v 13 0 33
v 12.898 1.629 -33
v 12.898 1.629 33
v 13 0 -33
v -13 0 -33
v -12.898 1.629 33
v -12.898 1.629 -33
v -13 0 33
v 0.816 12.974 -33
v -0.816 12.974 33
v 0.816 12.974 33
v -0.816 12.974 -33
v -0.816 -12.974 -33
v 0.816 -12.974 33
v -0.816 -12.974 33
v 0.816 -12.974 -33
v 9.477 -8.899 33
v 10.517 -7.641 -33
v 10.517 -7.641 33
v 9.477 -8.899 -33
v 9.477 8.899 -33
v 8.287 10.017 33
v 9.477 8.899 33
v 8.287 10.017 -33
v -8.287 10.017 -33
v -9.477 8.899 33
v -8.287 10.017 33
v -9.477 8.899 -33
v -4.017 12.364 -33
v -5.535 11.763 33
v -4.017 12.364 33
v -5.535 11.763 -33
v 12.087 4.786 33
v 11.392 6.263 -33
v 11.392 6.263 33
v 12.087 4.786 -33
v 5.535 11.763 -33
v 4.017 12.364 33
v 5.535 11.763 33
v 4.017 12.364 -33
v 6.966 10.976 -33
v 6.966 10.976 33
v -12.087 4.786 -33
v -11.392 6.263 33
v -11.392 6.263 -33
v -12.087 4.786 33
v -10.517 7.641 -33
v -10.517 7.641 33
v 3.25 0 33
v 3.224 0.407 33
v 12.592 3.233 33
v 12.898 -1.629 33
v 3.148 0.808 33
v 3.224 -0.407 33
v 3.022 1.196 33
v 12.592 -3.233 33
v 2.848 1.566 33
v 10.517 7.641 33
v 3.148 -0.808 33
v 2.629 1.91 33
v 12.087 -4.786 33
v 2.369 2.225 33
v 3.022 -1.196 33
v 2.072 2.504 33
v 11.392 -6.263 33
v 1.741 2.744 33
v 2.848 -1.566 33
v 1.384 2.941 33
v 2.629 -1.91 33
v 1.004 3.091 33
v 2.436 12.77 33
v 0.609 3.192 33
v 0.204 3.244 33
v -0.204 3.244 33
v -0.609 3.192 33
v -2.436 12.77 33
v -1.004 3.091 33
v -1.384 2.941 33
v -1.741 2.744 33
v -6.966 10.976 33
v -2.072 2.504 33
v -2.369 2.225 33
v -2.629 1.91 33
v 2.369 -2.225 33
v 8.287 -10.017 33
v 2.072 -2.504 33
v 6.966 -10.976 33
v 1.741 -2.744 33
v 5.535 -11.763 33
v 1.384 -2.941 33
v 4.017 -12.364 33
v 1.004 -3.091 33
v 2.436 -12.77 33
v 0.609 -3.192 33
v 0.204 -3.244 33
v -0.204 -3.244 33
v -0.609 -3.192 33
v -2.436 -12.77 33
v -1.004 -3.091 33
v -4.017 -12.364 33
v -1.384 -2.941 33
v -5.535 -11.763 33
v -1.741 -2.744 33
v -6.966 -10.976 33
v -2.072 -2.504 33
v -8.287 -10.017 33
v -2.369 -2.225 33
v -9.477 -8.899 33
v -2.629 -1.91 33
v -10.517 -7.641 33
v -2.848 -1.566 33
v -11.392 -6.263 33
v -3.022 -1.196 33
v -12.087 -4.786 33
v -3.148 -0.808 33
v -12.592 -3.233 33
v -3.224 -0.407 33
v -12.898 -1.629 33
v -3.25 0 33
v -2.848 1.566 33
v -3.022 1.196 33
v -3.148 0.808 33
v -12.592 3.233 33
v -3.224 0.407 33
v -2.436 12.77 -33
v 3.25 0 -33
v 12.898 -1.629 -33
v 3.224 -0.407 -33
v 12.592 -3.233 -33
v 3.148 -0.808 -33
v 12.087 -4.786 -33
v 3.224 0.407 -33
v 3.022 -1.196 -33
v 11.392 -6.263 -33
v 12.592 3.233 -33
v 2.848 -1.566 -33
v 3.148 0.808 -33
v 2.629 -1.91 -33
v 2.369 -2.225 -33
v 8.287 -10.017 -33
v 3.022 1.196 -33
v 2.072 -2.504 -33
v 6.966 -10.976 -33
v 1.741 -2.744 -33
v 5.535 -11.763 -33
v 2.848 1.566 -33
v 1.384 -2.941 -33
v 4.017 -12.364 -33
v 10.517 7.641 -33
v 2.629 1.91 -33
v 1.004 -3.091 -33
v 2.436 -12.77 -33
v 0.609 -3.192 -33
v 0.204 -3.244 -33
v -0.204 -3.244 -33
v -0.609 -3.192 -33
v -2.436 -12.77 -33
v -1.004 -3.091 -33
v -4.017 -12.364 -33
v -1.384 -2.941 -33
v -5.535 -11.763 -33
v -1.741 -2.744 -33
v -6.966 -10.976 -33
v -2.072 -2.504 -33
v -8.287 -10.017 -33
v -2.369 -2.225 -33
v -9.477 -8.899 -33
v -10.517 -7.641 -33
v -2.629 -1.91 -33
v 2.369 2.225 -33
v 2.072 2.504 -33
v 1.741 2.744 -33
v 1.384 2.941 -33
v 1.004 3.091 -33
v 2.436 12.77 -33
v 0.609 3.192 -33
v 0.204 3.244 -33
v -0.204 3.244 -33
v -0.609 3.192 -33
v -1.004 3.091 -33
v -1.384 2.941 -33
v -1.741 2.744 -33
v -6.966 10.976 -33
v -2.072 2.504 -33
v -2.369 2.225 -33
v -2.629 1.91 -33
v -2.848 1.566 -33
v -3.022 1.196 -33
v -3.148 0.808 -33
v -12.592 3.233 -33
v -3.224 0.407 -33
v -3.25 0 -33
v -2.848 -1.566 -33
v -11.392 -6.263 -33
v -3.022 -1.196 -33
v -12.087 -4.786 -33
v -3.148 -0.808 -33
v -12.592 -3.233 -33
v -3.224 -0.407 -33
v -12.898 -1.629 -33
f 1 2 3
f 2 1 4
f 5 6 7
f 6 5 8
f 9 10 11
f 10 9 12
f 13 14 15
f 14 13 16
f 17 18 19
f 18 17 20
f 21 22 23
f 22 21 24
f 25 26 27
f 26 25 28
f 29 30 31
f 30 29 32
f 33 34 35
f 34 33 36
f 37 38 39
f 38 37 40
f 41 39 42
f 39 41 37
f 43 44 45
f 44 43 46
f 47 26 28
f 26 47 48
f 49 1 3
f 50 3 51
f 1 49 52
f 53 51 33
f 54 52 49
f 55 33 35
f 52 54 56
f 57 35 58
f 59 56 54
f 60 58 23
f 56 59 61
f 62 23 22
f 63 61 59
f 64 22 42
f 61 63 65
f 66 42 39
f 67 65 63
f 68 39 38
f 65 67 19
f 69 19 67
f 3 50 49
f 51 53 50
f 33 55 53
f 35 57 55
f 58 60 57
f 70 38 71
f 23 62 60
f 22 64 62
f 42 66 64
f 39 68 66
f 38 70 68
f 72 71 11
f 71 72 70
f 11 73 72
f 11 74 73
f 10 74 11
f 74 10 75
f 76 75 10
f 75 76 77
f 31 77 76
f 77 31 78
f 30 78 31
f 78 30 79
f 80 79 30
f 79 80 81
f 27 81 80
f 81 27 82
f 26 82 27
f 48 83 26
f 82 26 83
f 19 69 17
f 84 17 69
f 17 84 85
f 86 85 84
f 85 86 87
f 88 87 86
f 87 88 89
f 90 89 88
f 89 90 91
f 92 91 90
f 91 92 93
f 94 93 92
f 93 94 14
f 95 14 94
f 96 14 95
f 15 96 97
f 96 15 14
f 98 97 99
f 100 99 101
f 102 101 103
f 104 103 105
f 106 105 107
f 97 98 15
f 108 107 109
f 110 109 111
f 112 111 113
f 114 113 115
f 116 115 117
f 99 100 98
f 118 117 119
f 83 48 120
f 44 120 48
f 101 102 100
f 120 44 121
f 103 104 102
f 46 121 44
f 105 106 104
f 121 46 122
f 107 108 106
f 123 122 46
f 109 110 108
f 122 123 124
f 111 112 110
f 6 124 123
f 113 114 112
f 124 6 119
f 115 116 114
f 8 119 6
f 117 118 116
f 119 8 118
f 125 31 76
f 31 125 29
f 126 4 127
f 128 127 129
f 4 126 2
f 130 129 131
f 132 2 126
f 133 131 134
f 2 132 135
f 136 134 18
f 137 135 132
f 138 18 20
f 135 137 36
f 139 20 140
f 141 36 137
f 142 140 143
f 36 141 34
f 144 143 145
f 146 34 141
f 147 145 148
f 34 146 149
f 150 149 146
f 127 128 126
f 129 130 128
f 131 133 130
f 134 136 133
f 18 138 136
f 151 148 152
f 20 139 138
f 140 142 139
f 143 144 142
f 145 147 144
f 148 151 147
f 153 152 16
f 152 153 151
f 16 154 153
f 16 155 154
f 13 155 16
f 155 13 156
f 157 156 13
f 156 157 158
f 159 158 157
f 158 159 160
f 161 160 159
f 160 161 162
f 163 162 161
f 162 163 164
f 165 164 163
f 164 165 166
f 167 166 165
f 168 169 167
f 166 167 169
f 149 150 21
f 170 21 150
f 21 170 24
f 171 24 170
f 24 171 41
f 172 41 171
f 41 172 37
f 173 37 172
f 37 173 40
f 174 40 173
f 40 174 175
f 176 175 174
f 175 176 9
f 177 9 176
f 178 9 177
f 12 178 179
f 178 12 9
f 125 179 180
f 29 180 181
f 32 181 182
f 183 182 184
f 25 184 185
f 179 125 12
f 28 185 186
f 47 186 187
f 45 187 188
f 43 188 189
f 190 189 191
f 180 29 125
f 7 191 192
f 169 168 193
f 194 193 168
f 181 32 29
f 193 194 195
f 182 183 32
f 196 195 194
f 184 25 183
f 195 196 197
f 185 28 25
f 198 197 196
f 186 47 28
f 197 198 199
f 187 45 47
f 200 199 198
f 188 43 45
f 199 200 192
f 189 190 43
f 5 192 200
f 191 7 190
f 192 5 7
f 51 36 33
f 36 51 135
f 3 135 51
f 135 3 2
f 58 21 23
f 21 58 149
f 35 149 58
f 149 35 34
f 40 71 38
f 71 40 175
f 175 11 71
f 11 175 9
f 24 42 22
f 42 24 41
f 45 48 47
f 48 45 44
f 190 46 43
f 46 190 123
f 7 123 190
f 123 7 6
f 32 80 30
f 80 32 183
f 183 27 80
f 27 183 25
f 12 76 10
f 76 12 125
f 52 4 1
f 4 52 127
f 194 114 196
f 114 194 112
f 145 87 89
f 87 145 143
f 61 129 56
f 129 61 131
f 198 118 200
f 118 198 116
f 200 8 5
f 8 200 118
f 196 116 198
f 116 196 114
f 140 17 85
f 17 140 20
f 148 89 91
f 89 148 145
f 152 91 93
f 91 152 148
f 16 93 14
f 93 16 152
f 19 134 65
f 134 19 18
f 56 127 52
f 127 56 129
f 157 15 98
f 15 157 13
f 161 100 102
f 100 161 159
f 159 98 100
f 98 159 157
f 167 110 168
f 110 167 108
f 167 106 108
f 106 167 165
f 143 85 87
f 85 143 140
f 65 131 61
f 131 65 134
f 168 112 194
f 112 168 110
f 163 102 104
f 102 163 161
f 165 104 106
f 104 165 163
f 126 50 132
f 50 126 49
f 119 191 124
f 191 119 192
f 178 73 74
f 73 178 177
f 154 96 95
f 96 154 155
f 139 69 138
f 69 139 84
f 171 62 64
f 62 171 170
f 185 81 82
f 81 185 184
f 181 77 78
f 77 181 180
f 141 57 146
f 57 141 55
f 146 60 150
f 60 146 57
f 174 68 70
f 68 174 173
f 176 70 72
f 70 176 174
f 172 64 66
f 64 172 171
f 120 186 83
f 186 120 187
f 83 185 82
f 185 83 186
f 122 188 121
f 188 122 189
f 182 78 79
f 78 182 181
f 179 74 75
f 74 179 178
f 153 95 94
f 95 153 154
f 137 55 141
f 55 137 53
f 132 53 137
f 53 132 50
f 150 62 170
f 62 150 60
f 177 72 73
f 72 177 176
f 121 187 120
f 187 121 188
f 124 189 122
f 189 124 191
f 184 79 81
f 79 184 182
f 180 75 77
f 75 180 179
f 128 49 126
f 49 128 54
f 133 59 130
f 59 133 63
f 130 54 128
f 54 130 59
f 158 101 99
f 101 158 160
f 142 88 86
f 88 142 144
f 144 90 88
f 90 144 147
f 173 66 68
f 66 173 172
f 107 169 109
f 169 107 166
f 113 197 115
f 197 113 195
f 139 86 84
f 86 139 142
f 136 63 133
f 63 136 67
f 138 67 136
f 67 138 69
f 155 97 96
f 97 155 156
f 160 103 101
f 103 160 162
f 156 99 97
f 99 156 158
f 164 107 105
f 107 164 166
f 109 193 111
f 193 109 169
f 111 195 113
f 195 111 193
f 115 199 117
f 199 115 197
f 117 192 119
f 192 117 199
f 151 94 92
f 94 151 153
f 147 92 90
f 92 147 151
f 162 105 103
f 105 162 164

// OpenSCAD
$fn = 50;


difference() {
	union() {
		translate(v = [0, 0, -33.0000000000]) {
			cylinder(h = 66, r = 13.0000000000);
		}
	}
	union() {
		translate(v = [0, 0, -100.0000000000]) {
			cylinder(h = 200, r = 3.2500000000);
		}
	}
}
